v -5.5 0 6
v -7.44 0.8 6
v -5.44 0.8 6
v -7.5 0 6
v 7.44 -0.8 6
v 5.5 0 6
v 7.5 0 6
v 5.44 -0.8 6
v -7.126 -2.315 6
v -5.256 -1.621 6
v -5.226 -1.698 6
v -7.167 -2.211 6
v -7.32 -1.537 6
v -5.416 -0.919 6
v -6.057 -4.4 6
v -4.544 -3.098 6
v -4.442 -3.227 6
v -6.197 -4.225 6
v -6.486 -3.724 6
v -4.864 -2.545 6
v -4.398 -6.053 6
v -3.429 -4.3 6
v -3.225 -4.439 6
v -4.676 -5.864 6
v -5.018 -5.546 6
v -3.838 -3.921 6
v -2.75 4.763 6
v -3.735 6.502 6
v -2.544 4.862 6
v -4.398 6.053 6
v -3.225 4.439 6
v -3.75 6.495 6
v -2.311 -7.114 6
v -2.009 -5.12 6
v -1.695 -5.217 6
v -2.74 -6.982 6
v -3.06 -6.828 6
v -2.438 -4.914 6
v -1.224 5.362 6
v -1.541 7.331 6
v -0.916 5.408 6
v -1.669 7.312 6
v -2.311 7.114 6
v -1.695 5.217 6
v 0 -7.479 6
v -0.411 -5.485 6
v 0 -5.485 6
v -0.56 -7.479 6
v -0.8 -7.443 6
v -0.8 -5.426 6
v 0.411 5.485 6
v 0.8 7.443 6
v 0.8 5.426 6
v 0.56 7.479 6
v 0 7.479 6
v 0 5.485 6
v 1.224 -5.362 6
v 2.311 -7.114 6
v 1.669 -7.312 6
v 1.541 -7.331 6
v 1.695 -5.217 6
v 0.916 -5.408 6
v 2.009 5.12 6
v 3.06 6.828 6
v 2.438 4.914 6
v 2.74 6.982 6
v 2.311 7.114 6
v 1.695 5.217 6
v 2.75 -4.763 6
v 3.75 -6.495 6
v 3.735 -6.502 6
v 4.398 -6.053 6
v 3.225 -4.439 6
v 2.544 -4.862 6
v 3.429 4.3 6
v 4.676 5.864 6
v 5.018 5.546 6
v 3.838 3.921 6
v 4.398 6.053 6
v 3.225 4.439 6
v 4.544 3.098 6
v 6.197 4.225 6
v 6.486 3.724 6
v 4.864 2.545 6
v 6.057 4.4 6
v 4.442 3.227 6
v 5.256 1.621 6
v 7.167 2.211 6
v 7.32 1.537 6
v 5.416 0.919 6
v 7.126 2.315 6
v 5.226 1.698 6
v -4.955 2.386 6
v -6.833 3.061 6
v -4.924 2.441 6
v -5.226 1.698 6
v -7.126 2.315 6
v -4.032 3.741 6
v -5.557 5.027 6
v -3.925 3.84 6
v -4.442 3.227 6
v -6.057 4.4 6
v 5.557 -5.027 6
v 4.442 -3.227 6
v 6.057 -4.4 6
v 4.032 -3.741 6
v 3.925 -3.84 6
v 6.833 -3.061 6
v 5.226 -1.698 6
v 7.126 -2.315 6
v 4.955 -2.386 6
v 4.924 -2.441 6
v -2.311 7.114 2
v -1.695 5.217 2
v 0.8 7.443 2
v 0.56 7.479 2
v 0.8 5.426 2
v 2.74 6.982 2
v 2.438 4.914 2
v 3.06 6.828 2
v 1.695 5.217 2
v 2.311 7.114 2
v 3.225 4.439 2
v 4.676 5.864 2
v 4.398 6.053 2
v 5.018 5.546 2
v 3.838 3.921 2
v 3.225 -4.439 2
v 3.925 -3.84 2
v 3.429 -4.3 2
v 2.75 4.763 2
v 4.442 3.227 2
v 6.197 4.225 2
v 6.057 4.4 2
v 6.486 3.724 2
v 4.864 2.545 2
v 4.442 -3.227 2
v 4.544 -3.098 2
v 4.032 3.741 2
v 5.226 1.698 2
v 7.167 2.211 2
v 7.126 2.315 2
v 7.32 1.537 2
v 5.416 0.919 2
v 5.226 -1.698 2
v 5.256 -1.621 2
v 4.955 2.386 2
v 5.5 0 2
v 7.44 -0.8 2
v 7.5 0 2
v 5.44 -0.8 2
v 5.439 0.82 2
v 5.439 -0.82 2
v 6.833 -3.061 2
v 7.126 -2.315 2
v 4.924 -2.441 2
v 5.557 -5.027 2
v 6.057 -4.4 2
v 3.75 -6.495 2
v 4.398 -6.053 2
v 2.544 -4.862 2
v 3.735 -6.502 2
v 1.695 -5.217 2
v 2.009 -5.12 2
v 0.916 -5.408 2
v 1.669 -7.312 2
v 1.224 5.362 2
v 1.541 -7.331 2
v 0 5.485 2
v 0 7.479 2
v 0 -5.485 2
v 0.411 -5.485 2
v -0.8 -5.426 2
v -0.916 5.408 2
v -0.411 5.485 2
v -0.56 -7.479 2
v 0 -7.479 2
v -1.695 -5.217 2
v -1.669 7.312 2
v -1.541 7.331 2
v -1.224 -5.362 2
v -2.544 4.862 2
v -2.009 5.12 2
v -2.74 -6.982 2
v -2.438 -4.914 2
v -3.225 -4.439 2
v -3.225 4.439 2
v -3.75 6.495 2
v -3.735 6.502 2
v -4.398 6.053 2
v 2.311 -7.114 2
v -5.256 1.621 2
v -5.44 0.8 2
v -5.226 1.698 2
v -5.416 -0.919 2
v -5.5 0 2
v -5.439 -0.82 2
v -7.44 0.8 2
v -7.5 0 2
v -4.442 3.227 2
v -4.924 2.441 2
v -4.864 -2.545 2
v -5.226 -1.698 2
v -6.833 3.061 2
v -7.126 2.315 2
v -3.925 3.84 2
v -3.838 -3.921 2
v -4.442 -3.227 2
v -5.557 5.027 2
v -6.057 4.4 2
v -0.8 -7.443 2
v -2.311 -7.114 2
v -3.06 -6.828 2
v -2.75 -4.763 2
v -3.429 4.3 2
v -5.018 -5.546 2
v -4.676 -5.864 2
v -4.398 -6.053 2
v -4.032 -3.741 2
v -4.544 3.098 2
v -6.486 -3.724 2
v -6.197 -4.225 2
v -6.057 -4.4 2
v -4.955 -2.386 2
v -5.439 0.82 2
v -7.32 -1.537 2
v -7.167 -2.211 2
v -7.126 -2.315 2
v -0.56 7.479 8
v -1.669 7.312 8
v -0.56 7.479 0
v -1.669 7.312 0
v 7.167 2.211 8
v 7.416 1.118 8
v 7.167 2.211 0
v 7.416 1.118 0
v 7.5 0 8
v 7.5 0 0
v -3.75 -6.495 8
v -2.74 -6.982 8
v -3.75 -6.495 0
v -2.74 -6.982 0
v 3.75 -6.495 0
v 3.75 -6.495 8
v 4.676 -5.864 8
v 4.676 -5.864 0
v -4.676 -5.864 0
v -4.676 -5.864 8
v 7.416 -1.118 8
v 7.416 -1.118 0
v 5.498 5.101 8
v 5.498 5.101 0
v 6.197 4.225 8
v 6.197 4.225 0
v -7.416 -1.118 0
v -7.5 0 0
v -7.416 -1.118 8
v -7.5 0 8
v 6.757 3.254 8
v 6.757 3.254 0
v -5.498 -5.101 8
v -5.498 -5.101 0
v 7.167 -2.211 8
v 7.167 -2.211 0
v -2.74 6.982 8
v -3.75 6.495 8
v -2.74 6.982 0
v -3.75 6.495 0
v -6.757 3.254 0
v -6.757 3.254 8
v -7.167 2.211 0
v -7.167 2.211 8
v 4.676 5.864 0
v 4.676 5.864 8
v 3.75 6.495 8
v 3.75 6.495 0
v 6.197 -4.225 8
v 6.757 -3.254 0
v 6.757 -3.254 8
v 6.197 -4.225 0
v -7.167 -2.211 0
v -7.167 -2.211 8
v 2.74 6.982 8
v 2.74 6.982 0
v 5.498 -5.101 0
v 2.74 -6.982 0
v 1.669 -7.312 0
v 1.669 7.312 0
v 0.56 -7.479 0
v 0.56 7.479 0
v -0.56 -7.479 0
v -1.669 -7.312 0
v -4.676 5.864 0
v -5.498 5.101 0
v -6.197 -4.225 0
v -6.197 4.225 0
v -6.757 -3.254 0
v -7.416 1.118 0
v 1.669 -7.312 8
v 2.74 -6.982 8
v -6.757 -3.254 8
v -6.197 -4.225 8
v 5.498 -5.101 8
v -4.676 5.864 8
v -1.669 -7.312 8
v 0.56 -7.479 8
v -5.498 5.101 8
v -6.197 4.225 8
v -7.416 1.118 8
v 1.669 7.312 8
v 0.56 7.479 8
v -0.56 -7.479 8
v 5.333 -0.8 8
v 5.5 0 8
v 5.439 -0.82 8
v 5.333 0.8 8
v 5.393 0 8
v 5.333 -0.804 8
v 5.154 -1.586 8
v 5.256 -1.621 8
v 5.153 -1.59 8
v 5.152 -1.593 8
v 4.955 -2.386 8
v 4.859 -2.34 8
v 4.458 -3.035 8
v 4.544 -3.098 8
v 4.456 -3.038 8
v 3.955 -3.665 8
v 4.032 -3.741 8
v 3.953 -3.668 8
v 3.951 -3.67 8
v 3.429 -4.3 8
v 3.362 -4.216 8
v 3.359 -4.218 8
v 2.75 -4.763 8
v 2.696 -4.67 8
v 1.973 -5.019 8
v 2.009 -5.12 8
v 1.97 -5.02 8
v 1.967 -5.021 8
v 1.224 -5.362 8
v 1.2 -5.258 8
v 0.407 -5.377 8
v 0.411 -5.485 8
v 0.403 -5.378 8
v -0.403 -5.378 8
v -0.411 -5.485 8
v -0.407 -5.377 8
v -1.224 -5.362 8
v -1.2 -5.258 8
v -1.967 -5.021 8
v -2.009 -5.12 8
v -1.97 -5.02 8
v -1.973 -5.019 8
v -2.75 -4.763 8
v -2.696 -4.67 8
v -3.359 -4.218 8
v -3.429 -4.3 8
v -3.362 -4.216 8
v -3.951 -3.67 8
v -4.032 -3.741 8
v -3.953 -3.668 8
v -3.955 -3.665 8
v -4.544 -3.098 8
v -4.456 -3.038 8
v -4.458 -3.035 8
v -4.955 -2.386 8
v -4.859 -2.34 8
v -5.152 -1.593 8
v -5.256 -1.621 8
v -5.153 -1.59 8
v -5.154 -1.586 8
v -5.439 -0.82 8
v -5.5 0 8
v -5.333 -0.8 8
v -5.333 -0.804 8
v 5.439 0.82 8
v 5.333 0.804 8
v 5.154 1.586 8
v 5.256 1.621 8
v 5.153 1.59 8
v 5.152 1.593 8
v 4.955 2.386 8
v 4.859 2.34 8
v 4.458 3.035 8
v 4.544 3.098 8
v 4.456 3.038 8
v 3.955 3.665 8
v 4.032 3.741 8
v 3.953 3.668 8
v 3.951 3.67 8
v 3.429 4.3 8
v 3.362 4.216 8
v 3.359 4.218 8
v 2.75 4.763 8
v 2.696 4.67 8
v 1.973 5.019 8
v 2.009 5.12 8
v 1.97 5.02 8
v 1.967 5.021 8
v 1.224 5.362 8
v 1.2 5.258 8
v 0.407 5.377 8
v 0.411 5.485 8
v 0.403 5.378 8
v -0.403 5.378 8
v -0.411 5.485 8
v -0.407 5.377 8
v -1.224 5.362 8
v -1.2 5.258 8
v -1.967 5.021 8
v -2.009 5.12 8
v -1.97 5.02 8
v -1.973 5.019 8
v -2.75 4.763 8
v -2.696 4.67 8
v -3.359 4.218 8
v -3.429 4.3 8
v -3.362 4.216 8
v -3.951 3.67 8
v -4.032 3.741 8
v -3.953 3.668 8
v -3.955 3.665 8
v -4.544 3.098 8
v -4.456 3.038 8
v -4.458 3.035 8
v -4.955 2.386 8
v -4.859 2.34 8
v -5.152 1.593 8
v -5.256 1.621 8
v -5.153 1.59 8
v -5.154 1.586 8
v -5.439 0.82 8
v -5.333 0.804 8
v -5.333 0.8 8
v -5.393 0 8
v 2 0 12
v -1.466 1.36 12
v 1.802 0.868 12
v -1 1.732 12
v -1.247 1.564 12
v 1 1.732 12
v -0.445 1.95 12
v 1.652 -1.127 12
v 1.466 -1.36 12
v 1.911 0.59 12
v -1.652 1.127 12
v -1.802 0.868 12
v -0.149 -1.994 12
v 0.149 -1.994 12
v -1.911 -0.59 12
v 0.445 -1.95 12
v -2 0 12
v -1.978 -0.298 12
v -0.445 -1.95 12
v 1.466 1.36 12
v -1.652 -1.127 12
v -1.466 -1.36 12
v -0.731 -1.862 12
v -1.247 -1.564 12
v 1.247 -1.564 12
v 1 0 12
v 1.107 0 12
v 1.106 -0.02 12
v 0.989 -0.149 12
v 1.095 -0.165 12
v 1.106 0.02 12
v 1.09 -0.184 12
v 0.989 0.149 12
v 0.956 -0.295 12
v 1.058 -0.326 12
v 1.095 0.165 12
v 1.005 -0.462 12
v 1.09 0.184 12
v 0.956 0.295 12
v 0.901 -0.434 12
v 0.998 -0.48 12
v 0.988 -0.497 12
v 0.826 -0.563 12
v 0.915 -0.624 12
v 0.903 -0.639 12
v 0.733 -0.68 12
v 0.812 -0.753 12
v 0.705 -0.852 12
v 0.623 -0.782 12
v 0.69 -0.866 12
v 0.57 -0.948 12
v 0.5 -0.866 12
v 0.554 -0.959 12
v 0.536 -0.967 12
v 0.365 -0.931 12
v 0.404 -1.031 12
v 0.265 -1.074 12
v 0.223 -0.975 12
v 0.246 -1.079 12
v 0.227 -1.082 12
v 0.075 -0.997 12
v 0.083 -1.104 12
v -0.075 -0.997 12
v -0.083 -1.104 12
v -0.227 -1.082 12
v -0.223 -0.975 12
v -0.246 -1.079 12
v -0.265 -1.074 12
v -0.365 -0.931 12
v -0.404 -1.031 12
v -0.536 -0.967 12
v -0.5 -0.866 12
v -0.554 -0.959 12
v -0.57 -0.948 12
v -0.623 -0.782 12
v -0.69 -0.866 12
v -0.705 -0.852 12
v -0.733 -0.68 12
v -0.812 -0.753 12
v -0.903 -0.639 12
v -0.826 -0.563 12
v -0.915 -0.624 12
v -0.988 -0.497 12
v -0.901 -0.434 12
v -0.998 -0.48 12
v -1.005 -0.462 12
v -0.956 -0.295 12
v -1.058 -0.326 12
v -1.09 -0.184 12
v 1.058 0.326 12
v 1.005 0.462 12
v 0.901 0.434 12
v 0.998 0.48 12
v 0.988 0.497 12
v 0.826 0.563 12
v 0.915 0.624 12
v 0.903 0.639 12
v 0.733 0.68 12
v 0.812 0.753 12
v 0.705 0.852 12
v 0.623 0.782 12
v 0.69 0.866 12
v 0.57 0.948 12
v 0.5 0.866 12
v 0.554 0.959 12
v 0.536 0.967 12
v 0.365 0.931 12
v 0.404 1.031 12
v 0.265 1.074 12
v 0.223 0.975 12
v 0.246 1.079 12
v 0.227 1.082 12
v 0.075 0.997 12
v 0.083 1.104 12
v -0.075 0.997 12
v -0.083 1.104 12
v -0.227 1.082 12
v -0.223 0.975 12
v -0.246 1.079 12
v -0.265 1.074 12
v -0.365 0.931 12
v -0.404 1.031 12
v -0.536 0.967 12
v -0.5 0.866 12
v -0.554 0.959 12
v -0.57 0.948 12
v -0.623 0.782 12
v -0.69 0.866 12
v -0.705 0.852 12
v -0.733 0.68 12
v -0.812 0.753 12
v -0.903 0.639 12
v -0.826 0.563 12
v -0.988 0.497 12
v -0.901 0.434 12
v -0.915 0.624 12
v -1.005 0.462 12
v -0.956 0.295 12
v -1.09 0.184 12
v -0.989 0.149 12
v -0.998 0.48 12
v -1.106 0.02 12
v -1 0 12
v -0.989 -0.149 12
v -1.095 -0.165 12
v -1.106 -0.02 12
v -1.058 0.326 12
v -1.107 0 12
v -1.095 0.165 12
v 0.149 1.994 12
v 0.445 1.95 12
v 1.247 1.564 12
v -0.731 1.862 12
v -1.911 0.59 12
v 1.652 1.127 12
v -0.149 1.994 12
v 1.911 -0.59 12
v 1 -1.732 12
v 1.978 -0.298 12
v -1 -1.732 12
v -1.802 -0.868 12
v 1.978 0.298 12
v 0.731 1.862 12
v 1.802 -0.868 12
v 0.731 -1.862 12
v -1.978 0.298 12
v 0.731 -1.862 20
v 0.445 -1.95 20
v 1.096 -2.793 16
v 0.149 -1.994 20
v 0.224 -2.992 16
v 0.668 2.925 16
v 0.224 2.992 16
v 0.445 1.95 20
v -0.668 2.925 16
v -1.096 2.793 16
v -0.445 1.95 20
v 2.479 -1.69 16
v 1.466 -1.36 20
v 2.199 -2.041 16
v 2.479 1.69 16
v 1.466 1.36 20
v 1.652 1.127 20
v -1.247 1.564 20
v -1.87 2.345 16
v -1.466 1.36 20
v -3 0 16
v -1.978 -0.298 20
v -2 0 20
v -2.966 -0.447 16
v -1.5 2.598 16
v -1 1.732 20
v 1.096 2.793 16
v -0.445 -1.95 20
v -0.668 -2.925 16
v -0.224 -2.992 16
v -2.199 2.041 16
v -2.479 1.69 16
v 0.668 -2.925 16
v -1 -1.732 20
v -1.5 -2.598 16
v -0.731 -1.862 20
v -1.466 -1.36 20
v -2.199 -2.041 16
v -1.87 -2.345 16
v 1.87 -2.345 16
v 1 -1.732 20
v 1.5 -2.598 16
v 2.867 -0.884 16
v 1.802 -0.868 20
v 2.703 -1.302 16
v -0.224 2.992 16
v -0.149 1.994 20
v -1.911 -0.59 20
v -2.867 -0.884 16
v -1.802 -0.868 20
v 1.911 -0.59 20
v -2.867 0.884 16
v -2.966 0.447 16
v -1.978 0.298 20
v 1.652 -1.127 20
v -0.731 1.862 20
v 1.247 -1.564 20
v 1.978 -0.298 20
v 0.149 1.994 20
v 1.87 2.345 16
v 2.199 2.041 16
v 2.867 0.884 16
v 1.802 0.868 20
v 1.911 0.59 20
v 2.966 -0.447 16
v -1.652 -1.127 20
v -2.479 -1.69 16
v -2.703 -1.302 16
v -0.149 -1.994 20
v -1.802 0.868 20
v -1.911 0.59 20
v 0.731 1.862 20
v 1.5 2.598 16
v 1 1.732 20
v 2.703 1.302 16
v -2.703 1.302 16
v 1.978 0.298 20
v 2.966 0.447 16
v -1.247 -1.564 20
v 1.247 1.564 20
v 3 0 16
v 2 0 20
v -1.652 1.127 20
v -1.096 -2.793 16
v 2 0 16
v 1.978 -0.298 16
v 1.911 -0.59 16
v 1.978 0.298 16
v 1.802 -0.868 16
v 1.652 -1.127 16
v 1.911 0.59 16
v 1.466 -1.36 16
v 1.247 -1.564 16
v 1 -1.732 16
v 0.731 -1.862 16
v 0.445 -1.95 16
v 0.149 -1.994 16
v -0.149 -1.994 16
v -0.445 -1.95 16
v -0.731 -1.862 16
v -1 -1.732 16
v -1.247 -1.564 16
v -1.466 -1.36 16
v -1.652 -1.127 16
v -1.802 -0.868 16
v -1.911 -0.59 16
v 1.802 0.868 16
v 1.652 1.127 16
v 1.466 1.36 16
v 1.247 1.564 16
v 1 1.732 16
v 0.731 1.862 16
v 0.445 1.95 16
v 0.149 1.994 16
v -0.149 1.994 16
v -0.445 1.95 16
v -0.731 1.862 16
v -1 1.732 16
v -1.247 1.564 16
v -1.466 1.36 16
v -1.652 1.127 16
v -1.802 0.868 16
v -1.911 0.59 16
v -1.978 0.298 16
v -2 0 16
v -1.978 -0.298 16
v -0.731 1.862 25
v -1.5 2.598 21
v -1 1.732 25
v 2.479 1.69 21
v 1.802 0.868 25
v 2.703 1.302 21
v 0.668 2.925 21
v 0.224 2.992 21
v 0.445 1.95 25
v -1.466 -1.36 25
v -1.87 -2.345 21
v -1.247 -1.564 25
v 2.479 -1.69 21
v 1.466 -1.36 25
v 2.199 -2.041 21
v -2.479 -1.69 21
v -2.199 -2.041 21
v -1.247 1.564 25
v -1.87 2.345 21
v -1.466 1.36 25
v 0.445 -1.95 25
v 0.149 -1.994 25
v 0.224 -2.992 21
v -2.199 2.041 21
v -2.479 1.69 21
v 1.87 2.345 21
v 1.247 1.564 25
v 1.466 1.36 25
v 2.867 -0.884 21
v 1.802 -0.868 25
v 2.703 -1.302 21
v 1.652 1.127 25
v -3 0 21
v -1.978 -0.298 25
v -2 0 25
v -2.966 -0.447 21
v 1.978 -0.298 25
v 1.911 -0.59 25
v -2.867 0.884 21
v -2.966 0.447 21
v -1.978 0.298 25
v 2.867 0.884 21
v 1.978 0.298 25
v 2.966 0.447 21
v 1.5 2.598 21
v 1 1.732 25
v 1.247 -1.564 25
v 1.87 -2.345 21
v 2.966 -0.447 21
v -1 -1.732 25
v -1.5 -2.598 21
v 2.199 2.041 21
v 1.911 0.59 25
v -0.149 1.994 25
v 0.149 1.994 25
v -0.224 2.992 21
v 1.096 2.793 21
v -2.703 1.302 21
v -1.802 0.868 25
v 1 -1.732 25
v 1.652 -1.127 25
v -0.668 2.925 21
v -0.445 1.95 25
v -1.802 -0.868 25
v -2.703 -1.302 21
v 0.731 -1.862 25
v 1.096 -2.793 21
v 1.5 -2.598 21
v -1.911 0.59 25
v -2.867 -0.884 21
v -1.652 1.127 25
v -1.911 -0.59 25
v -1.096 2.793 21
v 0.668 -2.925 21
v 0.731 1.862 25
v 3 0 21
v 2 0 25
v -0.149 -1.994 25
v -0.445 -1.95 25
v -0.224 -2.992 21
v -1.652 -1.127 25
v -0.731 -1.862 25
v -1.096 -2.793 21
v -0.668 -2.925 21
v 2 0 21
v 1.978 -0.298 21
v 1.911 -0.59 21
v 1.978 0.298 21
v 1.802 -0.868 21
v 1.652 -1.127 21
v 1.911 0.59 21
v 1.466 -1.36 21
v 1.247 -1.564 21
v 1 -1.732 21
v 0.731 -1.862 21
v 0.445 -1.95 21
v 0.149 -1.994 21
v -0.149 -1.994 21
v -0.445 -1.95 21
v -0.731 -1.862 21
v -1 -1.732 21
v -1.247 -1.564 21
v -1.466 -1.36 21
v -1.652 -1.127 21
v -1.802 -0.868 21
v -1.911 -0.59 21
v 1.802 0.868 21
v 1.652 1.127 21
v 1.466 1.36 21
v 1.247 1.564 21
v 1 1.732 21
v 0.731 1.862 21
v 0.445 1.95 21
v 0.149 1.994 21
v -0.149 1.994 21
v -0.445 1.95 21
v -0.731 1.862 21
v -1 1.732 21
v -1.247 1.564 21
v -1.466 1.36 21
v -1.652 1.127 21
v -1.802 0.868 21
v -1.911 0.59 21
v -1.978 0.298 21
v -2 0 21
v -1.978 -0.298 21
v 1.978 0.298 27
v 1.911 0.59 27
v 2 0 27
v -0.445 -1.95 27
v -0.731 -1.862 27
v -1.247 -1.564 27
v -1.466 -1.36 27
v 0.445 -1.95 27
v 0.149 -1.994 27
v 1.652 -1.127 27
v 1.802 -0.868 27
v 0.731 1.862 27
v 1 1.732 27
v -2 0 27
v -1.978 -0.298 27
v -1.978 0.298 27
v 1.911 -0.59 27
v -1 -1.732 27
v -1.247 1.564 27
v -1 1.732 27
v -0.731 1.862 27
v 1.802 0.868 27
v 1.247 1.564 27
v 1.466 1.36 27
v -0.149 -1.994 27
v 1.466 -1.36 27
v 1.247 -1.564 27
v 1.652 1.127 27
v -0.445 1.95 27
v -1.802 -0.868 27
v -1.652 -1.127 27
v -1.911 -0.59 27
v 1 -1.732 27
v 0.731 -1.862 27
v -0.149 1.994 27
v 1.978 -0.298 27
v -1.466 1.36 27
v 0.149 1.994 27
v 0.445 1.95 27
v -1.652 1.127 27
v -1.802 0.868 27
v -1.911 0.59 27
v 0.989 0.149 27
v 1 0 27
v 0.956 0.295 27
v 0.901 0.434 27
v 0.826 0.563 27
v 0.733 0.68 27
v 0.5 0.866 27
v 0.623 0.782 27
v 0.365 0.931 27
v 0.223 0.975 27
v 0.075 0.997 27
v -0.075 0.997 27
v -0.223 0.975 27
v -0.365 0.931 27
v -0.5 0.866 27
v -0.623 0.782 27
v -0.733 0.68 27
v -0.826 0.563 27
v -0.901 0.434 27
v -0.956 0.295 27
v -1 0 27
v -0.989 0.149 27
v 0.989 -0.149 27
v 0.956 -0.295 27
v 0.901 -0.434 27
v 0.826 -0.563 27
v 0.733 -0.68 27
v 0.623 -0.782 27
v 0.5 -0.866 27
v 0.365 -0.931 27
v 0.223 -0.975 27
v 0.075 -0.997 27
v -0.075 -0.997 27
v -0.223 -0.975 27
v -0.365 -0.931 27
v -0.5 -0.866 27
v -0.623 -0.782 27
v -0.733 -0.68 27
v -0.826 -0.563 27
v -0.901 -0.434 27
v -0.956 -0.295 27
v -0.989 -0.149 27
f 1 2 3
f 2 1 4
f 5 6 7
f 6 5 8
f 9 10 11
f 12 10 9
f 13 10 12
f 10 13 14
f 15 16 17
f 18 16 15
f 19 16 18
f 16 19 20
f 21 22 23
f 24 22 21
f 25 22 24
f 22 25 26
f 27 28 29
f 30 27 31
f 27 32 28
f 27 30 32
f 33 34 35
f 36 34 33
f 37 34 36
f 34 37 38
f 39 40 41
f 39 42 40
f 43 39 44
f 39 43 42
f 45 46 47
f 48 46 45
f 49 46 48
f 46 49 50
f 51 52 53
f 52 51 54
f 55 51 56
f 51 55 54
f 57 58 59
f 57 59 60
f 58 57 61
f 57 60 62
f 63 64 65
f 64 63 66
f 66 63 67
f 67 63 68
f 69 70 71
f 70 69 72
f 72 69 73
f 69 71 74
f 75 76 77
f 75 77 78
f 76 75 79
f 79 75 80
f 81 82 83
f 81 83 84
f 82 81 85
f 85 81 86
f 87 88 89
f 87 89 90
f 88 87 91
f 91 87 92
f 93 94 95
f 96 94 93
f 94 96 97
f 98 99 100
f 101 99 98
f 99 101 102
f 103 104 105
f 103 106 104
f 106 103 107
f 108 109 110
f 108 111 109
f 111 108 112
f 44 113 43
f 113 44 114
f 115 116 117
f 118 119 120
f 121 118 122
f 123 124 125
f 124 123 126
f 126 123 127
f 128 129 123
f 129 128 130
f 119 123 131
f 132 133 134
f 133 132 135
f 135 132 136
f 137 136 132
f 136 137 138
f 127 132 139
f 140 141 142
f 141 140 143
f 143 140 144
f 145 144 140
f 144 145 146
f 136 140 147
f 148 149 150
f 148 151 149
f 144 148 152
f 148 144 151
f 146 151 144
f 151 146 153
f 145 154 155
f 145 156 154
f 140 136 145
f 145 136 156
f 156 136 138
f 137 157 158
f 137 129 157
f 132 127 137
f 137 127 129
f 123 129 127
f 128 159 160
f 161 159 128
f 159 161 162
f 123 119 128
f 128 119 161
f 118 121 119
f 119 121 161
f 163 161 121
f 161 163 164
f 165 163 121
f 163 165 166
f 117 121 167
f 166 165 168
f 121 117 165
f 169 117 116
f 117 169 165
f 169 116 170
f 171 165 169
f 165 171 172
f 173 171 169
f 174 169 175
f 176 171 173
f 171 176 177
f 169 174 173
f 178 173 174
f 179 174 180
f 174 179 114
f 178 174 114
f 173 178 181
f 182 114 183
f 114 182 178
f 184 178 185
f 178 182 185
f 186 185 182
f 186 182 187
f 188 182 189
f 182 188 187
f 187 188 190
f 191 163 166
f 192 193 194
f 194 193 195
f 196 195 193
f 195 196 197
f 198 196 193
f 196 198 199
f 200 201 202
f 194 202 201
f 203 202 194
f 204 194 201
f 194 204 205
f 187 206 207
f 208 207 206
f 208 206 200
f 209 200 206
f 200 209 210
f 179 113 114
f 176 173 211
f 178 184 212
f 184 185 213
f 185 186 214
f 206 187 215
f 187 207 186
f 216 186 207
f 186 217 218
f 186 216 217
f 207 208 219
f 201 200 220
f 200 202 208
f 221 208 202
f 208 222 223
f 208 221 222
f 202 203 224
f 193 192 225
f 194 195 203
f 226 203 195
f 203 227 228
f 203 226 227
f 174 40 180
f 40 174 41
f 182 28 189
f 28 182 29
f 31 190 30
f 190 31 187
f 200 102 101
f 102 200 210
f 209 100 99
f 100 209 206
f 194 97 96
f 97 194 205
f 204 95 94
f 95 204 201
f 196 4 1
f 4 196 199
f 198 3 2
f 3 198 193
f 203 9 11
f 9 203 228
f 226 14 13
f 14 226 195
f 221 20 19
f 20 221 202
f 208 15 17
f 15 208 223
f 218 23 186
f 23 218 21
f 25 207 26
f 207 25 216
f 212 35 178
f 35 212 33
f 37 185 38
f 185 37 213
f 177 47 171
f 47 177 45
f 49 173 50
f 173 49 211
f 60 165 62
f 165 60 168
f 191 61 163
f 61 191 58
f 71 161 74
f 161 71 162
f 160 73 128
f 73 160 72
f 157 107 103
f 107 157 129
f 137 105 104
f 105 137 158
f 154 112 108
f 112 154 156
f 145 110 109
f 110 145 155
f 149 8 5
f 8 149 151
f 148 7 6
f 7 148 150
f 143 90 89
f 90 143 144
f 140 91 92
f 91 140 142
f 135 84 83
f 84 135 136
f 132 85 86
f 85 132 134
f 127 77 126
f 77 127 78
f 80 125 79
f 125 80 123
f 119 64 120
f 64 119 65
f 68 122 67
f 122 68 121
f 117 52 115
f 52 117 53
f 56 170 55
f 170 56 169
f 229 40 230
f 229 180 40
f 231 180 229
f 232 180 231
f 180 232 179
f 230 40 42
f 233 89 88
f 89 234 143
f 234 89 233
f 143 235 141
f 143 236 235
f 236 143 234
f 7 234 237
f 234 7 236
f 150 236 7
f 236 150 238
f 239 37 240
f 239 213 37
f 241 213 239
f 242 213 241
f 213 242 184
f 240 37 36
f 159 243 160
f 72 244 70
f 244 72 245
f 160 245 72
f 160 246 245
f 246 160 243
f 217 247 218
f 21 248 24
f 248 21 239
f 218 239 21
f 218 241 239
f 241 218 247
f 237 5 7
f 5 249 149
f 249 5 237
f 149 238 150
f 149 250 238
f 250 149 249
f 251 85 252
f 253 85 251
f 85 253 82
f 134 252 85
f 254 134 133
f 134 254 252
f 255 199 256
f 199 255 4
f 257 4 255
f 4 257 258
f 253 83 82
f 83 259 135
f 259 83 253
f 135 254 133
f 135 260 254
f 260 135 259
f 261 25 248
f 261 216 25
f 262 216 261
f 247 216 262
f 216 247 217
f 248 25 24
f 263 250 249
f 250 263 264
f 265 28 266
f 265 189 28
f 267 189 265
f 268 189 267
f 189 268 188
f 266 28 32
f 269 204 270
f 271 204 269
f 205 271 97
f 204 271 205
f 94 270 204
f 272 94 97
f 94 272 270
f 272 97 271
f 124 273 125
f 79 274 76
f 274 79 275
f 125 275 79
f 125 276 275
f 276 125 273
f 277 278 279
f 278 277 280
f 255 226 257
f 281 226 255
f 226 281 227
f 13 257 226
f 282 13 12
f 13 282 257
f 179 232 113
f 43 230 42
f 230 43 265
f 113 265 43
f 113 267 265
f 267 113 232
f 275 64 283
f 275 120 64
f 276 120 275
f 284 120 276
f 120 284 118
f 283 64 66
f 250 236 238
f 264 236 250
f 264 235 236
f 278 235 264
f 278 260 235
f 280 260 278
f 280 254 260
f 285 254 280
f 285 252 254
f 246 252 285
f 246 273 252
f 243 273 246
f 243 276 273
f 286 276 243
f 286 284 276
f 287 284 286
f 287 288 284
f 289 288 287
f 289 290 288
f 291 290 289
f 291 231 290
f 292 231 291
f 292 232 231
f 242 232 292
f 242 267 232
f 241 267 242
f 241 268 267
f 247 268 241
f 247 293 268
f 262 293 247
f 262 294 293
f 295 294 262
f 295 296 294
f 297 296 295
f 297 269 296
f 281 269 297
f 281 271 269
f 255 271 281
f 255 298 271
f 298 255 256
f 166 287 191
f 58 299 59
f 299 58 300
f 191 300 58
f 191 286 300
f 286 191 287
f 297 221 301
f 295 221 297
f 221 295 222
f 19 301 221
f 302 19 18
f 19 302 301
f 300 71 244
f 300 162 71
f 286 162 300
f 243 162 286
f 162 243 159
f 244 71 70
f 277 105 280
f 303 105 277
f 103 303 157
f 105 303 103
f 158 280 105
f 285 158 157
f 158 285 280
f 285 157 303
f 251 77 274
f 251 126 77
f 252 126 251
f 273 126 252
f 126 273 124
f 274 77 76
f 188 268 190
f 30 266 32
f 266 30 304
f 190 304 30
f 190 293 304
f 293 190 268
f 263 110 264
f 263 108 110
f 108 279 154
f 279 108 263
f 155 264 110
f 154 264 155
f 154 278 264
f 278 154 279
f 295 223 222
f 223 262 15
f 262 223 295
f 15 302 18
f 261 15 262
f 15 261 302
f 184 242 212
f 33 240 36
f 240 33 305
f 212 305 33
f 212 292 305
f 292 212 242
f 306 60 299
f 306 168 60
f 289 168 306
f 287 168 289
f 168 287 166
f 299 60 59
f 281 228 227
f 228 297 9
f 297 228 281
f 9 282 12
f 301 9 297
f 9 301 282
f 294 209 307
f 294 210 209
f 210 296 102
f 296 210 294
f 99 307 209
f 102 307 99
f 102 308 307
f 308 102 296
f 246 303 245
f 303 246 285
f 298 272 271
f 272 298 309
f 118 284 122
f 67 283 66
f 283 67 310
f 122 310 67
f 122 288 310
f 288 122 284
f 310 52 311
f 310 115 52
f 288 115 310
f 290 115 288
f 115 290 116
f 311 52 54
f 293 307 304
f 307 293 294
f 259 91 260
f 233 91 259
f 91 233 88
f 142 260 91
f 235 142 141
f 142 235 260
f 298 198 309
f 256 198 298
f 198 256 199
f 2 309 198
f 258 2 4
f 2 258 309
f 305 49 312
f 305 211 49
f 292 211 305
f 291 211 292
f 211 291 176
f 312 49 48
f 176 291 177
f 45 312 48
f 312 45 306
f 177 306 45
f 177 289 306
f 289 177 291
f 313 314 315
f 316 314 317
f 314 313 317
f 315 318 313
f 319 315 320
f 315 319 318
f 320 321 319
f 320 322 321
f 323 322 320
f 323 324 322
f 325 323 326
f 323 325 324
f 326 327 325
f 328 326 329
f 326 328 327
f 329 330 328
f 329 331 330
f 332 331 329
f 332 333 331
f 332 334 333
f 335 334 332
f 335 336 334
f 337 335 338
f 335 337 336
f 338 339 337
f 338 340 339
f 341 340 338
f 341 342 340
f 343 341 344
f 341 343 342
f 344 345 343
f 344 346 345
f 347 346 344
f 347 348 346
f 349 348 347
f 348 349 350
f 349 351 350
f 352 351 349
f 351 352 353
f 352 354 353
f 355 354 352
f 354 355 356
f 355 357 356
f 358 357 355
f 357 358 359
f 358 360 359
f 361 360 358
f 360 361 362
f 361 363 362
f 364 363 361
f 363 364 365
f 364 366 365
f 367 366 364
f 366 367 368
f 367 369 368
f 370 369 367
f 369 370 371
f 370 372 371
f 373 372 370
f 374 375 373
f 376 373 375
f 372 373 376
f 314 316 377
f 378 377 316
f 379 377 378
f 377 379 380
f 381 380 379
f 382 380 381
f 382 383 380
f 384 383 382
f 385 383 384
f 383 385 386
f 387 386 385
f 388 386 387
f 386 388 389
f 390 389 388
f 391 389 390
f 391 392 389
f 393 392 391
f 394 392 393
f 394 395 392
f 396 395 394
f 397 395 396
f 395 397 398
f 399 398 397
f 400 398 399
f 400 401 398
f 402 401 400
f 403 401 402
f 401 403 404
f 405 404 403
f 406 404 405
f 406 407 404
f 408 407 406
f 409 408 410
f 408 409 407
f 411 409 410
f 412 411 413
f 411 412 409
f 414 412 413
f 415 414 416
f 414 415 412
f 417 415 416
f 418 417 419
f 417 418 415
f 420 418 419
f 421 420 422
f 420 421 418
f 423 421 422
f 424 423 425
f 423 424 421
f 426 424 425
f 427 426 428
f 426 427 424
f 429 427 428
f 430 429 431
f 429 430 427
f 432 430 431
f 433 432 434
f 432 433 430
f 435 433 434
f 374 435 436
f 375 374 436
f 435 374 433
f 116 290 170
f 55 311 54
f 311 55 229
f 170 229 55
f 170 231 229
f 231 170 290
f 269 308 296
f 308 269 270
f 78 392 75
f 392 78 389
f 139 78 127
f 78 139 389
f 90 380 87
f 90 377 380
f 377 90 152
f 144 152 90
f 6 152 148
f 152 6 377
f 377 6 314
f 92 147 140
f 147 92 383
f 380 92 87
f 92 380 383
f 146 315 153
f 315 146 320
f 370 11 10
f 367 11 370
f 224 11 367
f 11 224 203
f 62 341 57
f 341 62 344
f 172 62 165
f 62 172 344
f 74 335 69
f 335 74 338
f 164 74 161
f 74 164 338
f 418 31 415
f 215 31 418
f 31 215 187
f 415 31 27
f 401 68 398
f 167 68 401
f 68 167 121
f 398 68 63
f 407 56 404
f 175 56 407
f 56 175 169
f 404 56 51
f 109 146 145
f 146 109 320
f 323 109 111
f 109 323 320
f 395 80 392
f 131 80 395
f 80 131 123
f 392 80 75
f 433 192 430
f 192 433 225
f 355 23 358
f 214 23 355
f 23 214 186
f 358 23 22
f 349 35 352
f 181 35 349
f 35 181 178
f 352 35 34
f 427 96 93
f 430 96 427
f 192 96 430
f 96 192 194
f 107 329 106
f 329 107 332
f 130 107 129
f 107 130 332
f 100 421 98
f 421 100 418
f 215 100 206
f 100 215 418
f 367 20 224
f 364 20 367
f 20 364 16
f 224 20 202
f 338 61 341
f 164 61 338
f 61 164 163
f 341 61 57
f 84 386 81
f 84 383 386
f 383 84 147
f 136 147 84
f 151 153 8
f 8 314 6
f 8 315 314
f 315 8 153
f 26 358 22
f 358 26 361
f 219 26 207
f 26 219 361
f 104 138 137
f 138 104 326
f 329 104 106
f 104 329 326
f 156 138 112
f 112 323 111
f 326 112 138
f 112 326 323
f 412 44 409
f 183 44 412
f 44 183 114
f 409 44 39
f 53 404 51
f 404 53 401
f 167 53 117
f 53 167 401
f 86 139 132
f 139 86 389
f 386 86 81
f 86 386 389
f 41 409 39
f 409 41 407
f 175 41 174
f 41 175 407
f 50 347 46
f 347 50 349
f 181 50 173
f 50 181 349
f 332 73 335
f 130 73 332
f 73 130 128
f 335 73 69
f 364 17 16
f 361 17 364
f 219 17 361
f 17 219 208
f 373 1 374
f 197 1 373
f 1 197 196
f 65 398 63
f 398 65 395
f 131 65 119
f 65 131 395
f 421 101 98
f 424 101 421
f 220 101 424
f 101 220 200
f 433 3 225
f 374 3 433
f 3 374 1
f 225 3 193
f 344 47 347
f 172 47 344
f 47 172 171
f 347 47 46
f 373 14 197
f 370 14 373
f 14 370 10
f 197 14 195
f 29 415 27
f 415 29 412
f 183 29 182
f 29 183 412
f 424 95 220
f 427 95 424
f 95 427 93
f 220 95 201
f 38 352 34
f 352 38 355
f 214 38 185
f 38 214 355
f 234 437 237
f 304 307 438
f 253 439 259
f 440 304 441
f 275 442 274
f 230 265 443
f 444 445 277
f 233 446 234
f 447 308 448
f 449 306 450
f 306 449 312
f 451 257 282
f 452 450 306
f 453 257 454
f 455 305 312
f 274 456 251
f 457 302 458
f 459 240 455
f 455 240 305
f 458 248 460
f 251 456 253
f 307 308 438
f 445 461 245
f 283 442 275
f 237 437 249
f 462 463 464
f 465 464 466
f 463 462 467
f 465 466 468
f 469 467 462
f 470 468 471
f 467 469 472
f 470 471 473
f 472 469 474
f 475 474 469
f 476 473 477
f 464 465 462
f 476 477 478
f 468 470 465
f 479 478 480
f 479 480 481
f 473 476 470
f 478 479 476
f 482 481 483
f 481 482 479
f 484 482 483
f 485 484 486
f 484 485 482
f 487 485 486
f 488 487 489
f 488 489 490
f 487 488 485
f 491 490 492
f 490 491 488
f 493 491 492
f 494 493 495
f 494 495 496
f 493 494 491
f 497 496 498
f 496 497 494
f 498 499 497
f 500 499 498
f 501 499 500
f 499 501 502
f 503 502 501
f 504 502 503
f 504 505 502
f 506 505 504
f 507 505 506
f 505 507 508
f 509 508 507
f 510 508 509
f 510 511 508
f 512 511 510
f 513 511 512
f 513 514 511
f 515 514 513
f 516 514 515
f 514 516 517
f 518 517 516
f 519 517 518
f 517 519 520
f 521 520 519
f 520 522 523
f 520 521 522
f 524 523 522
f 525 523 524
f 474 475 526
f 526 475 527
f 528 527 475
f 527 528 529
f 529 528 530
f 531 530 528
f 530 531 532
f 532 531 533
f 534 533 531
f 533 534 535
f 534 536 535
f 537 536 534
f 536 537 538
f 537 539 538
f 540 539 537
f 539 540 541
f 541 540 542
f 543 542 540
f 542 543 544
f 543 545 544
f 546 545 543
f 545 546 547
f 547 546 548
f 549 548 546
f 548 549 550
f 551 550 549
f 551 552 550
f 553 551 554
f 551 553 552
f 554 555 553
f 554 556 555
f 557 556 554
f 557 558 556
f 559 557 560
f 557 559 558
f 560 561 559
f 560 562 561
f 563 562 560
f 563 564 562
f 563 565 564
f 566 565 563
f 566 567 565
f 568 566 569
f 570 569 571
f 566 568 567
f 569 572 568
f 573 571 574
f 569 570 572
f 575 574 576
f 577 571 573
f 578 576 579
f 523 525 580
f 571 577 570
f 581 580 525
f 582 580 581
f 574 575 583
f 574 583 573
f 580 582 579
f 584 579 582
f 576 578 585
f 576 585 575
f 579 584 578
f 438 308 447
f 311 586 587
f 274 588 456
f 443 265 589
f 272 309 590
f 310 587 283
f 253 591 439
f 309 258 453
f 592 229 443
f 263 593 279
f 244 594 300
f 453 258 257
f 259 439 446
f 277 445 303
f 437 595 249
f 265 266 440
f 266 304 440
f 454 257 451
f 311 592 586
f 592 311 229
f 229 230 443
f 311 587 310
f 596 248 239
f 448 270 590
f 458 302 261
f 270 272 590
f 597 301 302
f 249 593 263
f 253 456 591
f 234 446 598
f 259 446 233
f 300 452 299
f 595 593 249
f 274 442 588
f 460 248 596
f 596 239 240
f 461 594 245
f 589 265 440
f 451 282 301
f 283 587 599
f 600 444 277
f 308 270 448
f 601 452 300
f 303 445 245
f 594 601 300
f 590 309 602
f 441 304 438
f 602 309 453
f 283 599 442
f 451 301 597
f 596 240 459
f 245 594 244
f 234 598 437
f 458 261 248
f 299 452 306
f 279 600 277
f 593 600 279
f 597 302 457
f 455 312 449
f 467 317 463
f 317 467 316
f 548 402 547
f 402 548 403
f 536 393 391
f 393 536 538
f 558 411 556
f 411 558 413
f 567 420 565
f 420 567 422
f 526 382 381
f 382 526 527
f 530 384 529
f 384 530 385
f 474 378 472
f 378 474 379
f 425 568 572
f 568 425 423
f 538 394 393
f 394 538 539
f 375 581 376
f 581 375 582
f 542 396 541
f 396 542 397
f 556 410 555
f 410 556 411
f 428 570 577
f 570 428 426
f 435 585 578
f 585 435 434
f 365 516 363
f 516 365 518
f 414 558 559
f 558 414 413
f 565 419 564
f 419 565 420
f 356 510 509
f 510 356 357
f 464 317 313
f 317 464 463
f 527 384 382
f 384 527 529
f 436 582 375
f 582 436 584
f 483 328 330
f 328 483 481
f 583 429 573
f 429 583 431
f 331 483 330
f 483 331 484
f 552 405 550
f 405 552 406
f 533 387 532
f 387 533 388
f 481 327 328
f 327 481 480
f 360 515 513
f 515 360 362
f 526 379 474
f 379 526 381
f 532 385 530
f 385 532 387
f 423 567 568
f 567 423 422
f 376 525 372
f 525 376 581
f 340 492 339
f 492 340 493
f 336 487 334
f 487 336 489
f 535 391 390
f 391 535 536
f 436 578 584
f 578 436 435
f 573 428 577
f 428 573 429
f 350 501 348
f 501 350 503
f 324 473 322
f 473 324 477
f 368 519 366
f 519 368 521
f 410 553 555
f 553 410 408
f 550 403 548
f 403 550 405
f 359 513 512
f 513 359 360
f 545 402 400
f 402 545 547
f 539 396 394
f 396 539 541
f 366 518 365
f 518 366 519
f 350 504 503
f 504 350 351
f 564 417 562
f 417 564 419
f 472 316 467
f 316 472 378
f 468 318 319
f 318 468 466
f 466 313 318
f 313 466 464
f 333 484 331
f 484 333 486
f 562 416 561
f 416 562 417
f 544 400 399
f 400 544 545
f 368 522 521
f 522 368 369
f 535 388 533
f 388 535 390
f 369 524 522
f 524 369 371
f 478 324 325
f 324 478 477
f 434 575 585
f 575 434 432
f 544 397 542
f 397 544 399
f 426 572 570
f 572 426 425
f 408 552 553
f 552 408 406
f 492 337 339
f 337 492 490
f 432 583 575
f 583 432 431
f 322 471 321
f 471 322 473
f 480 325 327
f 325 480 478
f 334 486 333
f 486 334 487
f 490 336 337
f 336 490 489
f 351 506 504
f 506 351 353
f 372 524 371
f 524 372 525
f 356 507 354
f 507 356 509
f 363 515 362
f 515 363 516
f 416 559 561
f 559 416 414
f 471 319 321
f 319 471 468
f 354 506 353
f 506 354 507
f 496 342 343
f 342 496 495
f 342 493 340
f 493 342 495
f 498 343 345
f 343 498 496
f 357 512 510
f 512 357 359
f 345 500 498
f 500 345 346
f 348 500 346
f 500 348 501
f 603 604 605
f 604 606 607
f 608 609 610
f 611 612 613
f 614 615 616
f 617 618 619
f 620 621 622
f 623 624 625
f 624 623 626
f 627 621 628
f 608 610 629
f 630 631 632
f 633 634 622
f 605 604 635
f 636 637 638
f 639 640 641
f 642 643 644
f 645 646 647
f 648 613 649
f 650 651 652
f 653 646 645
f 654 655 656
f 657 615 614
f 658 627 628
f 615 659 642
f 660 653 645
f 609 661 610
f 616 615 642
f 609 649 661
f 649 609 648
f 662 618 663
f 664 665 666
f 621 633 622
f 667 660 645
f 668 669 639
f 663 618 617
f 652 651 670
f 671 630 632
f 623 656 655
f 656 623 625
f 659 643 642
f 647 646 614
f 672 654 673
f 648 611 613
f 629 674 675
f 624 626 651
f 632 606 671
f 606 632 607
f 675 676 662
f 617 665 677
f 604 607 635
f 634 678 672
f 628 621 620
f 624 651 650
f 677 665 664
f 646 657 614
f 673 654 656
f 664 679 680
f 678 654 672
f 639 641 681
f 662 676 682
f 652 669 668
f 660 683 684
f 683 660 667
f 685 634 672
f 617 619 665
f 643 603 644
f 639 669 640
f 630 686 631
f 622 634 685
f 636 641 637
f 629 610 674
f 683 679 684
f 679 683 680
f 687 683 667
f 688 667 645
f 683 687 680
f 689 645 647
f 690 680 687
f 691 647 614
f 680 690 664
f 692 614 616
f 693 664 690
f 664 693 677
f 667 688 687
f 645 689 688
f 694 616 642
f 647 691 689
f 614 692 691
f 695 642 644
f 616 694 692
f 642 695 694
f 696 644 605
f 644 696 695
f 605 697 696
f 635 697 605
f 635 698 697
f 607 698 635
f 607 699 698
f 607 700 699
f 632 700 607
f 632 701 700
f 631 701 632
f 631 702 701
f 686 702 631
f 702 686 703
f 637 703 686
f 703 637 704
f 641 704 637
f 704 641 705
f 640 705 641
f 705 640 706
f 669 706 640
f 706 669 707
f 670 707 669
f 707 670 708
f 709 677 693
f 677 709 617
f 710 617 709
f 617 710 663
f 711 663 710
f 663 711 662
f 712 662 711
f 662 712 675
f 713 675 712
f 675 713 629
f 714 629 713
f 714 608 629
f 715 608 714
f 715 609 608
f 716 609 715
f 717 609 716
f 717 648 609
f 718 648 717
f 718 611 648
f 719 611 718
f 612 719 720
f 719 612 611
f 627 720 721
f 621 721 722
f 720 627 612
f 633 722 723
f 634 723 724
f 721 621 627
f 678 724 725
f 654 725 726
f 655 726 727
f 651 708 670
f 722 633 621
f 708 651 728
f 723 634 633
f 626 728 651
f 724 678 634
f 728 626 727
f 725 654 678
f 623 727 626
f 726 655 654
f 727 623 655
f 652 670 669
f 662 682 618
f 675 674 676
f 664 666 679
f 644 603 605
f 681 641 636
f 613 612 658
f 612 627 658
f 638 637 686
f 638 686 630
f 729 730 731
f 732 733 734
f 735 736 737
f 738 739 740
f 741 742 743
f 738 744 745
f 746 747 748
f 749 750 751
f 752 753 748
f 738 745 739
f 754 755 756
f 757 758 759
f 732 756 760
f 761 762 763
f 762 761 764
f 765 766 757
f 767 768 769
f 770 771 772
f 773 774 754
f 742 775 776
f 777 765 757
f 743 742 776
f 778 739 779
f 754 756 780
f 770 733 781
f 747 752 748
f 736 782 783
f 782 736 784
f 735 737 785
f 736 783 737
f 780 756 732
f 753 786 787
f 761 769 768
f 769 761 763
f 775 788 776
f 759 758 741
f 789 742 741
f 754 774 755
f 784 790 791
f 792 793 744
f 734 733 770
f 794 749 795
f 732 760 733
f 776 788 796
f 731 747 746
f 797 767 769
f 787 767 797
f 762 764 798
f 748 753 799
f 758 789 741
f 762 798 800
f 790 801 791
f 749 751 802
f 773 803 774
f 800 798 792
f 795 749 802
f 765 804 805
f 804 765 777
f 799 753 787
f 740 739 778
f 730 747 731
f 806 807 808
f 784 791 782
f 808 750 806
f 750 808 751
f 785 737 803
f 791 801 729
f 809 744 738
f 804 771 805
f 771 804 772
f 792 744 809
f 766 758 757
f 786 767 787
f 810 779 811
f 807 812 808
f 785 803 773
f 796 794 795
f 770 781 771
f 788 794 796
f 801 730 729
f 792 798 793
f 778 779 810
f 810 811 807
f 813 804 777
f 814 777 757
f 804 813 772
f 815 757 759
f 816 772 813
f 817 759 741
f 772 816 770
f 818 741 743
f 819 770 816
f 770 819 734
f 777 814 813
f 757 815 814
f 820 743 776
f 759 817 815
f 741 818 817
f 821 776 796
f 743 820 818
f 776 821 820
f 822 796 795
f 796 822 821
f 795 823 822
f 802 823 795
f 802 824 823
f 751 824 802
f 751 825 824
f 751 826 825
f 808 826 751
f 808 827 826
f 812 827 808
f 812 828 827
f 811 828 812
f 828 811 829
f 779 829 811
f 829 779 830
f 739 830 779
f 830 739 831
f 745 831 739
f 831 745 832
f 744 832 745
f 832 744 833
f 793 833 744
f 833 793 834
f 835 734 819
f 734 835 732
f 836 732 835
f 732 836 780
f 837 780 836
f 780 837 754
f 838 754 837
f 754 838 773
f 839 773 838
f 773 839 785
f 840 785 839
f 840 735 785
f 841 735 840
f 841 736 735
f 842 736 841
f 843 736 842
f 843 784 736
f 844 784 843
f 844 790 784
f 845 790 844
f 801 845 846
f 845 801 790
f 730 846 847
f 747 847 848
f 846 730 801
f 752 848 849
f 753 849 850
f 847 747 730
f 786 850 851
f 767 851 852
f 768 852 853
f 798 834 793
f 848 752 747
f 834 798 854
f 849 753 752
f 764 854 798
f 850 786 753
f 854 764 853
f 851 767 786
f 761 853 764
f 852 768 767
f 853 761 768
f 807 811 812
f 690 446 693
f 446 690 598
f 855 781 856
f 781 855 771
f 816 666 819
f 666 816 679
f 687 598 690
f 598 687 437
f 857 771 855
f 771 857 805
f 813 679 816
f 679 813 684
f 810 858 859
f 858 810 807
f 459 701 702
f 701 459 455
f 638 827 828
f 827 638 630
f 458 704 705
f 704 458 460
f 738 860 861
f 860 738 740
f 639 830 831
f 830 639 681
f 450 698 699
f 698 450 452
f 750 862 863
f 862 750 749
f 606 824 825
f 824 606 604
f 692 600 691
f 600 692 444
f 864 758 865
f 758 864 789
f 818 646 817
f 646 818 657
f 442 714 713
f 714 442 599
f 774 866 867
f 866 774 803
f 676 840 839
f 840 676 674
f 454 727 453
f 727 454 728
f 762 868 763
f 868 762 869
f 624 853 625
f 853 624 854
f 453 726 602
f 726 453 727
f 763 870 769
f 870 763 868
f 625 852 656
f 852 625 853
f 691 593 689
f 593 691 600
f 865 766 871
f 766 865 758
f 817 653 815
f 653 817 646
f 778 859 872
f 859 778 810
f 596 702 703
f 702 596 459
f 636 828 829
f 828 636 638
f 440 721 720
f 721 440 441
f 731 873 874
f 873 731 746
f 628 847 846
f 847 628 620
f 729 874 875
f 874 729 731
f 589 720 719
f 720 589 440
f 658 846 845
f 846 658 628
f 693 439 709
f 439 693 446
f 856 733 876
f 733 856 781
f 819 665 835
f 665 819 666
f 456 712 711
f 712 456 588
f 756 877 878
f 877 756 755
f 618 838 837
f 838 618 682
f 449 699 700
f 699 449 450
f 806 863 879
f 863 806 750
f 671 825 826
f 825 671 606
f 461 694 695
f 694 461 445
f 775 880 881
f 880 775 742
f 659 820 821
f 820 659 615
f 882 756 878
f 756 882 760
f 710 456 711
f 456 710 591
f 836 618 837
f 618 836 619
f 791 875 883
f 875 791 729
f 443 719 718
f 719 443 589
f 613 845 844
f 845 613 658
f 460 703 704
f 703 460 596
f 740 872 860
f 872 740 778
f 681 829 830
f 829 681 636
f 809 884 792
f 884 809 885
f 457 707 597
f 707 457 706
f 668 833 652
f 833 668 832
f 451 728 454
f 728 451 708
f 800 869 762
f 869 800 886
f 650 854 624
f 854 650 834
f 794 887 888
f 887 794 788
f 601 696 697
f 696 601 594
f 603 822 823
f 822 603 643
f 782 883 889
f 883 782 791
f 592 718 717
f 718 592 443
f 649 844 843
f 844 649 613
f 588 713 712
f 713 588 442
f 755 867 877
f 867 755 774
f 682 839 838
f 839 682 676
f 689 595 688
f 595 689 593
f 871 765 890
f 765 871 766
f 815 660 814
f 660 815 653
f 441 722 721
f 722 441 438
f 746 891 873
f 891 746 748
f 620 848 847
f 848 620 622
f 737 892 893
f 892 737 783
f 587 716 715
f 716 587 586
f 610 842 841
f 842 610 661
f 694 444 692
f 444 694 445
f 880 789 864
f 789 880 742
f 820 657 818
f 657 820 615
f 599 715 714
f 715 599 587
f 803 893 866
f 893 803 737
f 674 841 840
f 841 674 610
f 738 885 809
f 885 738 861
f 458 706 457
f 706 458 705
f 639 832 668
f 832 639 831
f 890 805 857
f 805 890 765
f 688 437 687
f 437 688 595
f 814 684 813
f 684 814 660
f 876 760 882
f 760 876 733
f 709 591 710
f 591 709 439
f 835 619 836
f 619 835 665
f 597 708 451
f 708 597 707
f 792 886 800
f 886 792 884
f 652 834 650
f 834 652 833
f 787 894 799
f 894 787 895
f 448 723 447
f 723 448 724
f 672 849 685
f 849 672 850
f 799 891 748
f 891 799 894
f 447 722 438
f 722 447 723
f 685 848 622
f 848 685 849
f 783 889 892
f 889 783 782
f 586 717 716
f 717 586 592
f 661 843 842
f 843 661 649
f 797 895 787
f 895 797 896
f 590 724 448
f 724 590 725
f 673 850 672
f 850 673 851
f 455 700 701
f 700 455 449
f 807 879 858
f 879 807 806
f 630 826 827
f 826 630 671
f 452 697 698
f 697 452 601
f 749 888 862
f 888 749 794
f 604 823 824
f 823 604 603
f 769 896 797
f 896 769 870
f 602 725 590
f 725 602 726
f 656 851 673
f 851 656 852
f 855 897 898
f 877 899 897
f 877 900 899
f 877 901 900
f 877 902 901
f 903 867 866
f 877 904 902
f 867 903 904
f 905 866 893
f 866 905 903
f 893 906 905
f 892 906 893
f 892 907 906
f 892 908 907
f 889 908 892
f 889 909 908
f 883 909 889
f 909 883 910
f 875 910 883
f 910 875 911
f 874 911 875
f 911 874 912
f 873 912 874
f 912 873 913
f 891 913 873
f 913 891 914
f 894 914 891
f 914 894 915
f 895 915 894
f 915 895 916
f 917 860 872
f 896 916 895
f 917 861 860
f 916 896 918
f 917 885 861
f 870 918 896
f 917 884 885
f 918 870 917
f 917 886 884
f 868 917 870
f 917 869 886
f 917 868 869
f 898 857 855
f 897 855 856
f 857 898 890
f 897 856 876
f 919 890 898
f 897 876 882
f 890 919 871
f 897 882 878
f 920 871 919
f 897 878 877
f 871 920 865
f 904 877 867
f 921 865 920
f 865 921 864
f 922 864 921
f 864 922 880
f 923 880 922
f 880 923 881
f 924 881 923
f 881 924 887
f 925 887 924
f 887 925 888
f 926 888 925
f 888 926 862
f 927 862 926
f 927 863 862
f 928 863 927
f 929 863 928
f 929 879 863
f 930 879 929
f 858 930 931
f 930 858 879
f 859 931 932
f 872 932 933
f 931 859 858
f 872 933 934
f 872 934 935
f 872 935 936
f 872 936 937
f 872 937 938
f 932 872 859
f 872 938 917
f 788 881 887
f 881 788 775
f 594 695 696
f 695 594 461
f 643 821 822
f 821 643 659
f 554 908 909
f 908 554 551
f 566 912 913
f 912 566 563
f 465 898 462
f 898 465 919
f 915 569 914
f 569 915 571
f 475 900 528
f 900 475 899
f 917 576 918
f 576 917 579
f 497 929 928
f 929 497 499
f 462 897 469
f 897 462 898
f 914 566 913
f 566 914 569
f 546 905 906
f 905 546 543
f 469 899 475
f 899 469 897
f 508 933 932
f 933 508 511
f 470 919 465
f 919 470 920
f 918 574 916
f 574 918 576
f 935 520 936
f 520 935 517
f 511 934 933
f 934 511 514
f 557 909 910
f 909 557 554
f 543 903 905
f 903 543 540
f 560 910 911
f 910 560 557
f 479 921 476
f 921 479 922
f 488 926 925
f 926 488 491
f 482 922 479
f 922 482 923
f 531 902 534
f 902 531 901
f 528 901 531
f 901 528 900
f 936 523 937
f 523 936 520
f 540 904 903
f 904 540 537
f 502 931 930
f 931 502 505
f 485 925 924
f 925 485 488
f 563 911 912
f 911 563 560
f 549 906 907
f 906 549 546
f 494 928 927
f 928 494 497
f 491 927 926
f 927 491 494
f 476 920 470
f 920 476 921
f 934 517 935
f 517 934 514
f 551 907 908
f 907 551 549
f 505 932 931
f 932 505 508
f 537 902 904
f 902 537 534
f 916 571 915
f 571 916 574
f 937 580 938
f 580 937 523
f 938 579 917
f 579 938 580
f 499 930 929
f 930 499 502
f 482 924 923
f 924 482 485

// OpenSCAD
pipe_od = 4.0;
pipe_id = 2.0;
pipe_od_max = 6.0;
barb_height = 4;
barb_count = 2;
barb_off = 1;
pipe_height = 15;
filter_height = 8;
filter_dia = 15;
filter_wall = 2.0;
filter_hole_dia = filter_dia - 2 * filter_wall;
hole_count_x = 20;
hole_count_y = 1;
hole_width = 0.8;
hole_height = filter_height - 2 * filter_wall;
hole_off = filter_wall;
adapter_height = 4;

show_open = false;

$fn = 42;

module pipe() {
    difference() {
        union() {
            cylinder(d = pipe_od, h = pipe_height);
            
            for (i = [1 : barb_count]) {
                translate([0, 0, i * (pipe_height / (barb_count + 1)) - barb_off])
                cylinder(d1 = pipe_od_max, d2 = pipe_od, h = barb_height);
            }
        }
        
        translate([0, 0, -1])
        cylinder(d = pipe_id, h = pipe_height + 2);
    }
}

module filter() {
    difference() {
        cylinder(d = filter_dia, h = filter_height);
        
        translate([0, 0, hole_off])
        for (i = [1 : hole_count_x]) {
            for (j = [0 : hole_count_y - 1]) {
                translate([0, 0, (hole_height + hole_off) * j])
                rotate([0, 0, 360 / hole_count_x * i])
                cube([hole_width, filter_dia, hole_height]);
            }
        }
        
        translate([0, 0, filter_wall])
        cylinder(d = filter_hole_dia, h = filter_height - filter_wall + 1);
        
        translate([0, 0, filter_height - filter_wall - 1])
        cylinder(d = pipe_id, h = filter_wall + 2);
    }
}

module adapter() {
    difference() {
        cylinder(d1 = filter_dia, d2 = pipe_od, h = adapter_height);
        
        translate([0, 0, -0.1])
        cylinder(d1 = filter_hole_dia, d2 = pipe_id, h = adapter_height + 0.2);
    }
}

module part() {
    difference() {
        union() {
            filter();
            
            translate([0, 0, filter_height])
            adapter();
            
            translate([0, 0, filter_height + adapter_height])
            pipe();
        }
        
        if (show_open) {
            translate([-50, -filter_dia, -50])
            cube([100, filter_dia, 100]);
        }
    }
}

part();
